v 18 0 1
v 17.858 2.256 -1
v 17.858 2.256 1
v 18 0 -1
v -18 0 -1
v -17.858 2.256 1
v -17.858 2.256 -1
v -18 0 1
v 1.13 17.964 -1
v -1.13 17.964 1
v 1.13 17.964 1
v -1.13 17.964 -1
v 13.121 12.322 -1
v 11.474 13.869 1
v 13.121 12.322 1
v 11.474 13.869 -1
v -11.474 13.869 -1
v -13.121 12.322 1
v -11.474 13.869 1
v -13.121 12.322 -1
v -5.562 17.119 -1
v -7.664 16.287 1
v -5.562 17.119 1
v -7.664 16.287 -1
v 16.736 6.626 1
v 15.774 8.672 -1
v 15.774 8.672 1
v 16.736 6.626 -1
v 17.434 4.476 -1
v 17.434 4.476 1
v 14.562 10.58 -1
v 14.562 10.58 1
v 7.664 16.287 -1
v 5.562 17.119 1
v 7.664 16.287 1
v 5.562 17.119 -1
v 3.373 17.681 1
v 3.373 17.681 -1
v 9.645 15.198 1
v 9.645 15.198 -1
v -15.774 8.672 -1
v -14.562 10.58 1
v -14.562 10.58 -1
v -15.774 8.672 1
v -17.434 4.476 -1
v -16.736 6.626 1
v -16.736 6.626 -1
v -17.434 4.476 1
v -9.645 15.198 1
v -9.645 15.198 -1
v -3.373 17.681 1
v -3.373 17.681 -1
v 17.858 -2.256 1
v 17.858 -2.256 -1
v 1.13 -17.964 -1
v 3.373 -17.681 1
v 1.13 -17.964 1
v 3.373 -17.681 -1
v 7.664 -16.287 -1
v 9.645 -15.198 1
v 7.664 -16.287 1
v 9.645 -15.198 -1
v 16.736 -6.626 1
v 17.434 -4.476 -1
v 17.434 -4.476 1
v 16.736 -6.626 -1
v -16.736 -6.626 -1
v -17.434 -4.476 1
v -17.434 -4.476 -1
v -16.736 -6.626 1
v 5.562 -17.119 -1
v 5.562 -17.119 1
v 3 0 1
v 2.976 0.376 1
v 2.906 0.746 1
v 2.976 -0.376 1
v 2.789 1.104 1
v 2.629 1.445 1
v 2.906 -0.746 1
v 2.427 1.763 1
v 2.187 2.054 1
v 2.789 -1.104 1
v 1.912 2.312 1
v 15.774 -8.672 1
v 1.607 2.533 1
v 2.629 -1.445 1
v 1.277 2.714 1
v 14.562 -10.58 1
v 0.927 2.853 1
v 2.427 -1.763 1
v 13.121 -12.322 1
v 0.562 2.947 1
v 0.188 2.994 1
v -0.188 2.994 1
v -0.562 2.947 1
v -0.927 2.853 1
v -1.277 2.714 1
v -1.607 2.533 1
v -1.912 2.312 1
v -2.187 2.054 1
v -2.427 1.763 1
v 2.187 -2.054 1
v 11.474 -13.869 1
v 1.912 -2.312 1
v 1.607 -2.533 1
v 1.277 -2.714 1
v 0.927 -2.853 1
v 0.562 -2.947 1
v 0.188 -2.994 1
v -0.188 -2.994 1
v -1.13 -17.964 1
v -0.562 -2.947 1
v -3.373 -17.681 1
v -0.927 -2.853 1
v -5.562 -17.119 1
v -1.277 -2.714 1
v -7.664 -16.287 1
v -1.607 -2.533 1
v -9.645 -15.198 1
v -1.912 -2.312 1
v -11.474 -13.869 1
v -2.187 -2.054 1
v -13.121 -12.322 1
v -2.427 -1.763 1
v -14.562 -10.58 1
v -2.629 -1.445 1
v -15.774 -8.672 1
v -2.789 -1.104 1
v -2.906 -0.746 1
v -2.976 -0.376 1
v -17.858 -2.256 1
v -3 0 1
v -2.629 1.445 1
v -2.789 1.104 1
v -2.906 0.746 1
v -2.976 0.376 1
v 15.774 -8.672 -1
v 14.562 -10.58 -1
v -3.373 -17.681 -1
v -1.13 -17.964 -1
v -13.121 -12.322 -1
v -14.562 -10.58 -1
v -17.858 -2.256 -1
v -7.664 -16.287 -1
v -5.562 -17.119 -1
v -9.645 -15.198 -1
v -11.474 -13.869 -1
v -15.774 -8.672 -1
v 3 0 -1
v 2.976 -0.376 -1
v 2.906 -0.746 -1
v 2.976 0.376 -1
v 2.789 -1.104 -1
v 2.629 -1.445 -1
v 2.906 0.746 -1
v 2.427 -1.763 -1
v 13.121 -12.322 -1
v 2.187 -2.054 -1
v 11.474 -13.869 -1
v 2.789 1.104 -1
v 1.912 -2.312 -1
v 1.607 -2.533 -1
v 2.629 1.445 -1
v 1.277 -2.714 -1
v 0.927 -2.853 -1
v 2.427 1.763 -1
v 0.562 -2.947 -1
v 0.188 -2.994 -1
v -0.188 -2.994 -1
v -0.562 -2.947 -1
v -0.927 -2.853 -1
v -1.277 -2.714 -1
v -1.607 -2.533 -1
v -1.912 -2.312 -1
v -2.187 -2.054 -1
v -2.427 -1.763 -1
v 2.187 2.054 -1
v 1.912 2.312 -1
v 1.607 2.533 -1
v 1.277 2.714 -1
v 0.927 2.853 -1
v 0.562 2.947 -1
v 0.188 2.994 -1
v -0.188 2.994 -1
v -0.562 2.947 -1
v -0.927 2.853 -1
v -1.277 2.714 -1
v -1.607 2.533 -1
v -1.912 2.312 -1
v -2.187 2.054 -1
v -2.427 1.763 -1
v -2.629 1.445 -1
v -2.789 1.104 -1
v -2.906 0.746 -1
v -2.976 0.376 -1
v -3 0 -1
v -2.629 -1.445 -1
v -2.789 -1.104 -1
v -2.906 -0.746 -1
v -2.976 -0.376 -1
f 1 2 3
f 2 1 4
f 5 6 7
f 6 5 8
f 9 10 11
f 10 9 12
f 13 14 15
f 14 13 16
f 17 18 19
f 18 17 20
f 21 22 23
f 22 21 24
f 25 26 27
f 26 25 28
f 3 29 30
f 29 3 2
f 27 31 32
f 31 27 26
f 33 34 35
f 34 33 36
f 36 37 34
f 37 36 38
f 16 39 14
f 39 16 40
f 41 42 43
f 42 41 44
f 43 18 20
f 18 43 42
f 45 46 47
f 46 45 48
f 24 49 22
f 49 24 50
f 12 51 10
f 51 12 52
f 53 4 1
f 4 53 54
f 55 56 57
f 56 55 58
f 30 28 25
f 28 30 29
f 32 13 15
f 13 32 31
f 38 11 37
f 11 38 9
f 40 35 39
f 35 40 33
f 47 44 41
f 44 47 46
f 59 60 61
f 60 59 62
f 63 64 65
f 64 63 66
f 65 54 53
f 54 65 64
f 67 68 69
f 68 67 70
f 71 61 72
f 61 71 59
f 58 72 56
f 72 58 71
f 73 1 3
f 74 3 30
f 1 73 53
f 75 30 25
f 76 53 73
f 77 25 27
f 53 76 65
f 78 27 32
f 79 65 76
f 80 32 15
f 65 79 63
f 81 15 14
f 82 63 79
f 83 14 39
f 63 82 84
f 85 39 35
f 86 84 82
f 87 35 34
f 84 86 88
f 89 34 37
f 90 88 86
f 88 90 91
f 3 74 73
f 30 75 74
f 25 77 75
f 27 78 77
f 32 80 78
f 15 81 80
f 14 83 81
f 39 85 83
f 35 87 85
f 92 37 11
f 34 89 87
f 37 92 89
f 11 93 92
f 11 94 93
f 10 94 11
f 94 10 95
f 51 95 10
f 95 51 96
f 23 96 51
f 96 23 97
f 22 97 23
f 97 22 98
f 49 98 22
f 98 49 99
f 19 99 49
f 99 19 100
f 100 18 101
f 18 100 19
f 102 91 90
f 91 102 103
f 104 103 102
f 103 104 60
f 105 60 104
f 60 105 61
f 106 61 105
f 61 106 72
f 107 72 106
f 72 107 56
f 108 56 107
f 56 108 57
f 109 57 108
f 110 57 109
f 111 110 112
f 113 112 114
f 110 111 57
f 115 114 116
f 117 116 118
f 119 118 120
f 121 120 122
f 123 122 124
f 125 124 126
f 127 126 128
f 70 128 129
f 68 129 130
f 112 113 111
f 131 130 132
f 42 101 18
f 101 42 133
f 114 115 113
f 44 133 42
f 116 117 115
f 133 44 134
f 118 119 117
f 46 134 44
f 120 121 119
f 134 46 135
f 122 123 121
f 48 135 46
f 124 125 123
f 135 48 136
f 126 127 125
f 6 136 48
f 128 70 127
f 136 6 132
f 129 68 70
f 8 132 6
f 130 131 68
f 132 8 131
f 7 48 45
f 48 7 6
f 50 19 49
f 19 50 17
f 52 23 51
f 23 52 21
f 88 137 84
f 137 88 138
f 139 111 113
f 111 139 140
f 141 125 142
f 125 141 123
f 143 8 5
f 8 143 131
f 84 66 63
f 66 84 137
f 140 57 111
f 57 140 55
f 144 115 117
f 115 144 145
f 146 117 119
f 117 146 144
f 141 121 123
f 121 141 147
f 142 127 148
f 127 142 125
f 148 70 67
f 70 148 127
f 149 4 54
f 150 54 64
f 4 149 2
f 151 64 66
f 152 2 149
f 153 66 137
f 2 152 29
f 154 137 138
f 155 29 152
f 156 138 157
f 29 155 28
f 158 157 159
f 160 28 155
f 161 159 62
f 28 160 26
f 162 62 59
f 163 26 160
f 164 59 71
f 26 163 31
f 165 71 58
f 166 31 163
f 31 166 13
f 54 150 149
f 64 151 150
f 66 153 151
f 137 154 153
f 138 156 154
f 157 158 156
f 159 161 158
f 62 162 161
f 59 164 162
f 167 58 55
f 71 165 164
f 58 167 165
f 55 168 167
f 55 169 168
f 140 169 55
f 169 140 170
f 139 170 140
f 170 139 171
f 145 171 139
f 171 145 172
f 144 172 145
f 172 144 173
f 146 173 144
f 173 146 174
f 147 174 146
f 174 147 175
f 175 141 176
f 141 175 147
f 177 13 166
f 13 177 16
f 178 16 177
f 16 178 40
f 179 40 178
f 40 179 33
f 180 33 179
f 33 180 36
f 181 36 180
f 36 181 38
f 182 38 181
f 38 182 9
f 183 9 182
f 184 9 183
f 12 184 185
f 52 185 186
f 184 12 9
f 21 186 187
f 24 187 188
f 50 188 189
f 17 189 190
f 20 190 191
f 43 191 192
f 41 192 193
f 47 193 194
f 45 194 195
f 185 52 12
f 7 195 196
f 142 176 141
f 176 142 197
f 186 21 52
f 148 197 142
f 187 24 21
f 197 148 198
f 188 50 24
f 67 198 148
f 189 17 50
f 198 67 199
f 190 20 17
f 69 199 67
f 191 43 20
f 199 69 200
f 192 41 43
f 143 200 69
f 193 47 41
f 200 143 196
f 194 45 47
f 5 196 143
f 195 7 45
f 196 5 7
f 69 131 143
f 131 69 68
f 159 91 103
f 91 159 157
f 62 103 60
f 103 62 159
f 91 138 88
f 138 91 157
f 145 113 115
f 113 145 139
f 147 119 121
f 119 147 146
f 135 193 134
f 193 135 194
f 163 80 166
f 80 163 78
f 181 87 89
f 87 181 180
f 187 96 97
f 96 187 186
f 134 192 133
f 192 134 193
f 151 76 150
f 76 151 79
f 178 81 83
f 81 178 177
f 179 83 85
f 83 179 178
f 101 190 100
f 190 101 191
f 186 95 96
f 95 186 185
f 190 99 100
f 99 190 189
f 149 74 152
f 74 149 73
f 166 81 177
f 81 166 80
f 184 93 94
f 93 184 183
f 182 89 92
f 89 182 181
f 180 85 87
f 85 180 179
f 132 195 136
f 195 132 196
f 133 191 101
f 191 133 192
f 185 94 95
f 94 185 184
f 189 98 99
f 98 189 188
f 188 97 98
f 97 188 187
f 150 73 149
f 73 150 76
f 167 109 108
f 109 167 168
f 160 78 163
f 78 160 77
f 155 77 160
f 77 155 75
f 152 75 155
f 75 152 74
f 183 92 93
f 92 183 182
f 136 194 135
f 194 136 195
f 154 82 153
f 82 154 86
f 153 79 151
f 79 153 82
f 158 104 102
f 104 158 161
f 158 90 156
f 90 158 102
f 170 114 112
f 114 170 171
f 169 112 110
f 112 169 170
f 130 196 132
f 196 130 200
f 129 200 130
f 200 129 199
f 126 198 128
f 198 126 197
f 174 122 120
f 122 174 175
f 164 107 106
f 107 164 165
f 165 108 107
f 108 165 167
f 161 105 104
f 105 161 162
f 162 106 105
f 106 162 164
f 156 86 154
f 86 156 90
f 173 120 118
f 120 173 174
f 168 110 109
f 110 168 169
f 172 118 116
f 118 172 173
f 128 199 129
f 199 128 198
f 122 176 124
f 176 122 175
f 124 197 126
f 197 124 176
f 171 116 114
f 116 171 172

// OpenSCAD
$fn = 50;


difference() {
	union() {
		translate(v = [0, 0, -1.0000000000]) {
			cylinder(h = 2, r = 18.0000000000);
		}
	}
	union() {
		translate(v = [0, 0, -100.0000000000]) {
			cylinder(h = 200, r = 3.0000000000);
		}
	}
}
